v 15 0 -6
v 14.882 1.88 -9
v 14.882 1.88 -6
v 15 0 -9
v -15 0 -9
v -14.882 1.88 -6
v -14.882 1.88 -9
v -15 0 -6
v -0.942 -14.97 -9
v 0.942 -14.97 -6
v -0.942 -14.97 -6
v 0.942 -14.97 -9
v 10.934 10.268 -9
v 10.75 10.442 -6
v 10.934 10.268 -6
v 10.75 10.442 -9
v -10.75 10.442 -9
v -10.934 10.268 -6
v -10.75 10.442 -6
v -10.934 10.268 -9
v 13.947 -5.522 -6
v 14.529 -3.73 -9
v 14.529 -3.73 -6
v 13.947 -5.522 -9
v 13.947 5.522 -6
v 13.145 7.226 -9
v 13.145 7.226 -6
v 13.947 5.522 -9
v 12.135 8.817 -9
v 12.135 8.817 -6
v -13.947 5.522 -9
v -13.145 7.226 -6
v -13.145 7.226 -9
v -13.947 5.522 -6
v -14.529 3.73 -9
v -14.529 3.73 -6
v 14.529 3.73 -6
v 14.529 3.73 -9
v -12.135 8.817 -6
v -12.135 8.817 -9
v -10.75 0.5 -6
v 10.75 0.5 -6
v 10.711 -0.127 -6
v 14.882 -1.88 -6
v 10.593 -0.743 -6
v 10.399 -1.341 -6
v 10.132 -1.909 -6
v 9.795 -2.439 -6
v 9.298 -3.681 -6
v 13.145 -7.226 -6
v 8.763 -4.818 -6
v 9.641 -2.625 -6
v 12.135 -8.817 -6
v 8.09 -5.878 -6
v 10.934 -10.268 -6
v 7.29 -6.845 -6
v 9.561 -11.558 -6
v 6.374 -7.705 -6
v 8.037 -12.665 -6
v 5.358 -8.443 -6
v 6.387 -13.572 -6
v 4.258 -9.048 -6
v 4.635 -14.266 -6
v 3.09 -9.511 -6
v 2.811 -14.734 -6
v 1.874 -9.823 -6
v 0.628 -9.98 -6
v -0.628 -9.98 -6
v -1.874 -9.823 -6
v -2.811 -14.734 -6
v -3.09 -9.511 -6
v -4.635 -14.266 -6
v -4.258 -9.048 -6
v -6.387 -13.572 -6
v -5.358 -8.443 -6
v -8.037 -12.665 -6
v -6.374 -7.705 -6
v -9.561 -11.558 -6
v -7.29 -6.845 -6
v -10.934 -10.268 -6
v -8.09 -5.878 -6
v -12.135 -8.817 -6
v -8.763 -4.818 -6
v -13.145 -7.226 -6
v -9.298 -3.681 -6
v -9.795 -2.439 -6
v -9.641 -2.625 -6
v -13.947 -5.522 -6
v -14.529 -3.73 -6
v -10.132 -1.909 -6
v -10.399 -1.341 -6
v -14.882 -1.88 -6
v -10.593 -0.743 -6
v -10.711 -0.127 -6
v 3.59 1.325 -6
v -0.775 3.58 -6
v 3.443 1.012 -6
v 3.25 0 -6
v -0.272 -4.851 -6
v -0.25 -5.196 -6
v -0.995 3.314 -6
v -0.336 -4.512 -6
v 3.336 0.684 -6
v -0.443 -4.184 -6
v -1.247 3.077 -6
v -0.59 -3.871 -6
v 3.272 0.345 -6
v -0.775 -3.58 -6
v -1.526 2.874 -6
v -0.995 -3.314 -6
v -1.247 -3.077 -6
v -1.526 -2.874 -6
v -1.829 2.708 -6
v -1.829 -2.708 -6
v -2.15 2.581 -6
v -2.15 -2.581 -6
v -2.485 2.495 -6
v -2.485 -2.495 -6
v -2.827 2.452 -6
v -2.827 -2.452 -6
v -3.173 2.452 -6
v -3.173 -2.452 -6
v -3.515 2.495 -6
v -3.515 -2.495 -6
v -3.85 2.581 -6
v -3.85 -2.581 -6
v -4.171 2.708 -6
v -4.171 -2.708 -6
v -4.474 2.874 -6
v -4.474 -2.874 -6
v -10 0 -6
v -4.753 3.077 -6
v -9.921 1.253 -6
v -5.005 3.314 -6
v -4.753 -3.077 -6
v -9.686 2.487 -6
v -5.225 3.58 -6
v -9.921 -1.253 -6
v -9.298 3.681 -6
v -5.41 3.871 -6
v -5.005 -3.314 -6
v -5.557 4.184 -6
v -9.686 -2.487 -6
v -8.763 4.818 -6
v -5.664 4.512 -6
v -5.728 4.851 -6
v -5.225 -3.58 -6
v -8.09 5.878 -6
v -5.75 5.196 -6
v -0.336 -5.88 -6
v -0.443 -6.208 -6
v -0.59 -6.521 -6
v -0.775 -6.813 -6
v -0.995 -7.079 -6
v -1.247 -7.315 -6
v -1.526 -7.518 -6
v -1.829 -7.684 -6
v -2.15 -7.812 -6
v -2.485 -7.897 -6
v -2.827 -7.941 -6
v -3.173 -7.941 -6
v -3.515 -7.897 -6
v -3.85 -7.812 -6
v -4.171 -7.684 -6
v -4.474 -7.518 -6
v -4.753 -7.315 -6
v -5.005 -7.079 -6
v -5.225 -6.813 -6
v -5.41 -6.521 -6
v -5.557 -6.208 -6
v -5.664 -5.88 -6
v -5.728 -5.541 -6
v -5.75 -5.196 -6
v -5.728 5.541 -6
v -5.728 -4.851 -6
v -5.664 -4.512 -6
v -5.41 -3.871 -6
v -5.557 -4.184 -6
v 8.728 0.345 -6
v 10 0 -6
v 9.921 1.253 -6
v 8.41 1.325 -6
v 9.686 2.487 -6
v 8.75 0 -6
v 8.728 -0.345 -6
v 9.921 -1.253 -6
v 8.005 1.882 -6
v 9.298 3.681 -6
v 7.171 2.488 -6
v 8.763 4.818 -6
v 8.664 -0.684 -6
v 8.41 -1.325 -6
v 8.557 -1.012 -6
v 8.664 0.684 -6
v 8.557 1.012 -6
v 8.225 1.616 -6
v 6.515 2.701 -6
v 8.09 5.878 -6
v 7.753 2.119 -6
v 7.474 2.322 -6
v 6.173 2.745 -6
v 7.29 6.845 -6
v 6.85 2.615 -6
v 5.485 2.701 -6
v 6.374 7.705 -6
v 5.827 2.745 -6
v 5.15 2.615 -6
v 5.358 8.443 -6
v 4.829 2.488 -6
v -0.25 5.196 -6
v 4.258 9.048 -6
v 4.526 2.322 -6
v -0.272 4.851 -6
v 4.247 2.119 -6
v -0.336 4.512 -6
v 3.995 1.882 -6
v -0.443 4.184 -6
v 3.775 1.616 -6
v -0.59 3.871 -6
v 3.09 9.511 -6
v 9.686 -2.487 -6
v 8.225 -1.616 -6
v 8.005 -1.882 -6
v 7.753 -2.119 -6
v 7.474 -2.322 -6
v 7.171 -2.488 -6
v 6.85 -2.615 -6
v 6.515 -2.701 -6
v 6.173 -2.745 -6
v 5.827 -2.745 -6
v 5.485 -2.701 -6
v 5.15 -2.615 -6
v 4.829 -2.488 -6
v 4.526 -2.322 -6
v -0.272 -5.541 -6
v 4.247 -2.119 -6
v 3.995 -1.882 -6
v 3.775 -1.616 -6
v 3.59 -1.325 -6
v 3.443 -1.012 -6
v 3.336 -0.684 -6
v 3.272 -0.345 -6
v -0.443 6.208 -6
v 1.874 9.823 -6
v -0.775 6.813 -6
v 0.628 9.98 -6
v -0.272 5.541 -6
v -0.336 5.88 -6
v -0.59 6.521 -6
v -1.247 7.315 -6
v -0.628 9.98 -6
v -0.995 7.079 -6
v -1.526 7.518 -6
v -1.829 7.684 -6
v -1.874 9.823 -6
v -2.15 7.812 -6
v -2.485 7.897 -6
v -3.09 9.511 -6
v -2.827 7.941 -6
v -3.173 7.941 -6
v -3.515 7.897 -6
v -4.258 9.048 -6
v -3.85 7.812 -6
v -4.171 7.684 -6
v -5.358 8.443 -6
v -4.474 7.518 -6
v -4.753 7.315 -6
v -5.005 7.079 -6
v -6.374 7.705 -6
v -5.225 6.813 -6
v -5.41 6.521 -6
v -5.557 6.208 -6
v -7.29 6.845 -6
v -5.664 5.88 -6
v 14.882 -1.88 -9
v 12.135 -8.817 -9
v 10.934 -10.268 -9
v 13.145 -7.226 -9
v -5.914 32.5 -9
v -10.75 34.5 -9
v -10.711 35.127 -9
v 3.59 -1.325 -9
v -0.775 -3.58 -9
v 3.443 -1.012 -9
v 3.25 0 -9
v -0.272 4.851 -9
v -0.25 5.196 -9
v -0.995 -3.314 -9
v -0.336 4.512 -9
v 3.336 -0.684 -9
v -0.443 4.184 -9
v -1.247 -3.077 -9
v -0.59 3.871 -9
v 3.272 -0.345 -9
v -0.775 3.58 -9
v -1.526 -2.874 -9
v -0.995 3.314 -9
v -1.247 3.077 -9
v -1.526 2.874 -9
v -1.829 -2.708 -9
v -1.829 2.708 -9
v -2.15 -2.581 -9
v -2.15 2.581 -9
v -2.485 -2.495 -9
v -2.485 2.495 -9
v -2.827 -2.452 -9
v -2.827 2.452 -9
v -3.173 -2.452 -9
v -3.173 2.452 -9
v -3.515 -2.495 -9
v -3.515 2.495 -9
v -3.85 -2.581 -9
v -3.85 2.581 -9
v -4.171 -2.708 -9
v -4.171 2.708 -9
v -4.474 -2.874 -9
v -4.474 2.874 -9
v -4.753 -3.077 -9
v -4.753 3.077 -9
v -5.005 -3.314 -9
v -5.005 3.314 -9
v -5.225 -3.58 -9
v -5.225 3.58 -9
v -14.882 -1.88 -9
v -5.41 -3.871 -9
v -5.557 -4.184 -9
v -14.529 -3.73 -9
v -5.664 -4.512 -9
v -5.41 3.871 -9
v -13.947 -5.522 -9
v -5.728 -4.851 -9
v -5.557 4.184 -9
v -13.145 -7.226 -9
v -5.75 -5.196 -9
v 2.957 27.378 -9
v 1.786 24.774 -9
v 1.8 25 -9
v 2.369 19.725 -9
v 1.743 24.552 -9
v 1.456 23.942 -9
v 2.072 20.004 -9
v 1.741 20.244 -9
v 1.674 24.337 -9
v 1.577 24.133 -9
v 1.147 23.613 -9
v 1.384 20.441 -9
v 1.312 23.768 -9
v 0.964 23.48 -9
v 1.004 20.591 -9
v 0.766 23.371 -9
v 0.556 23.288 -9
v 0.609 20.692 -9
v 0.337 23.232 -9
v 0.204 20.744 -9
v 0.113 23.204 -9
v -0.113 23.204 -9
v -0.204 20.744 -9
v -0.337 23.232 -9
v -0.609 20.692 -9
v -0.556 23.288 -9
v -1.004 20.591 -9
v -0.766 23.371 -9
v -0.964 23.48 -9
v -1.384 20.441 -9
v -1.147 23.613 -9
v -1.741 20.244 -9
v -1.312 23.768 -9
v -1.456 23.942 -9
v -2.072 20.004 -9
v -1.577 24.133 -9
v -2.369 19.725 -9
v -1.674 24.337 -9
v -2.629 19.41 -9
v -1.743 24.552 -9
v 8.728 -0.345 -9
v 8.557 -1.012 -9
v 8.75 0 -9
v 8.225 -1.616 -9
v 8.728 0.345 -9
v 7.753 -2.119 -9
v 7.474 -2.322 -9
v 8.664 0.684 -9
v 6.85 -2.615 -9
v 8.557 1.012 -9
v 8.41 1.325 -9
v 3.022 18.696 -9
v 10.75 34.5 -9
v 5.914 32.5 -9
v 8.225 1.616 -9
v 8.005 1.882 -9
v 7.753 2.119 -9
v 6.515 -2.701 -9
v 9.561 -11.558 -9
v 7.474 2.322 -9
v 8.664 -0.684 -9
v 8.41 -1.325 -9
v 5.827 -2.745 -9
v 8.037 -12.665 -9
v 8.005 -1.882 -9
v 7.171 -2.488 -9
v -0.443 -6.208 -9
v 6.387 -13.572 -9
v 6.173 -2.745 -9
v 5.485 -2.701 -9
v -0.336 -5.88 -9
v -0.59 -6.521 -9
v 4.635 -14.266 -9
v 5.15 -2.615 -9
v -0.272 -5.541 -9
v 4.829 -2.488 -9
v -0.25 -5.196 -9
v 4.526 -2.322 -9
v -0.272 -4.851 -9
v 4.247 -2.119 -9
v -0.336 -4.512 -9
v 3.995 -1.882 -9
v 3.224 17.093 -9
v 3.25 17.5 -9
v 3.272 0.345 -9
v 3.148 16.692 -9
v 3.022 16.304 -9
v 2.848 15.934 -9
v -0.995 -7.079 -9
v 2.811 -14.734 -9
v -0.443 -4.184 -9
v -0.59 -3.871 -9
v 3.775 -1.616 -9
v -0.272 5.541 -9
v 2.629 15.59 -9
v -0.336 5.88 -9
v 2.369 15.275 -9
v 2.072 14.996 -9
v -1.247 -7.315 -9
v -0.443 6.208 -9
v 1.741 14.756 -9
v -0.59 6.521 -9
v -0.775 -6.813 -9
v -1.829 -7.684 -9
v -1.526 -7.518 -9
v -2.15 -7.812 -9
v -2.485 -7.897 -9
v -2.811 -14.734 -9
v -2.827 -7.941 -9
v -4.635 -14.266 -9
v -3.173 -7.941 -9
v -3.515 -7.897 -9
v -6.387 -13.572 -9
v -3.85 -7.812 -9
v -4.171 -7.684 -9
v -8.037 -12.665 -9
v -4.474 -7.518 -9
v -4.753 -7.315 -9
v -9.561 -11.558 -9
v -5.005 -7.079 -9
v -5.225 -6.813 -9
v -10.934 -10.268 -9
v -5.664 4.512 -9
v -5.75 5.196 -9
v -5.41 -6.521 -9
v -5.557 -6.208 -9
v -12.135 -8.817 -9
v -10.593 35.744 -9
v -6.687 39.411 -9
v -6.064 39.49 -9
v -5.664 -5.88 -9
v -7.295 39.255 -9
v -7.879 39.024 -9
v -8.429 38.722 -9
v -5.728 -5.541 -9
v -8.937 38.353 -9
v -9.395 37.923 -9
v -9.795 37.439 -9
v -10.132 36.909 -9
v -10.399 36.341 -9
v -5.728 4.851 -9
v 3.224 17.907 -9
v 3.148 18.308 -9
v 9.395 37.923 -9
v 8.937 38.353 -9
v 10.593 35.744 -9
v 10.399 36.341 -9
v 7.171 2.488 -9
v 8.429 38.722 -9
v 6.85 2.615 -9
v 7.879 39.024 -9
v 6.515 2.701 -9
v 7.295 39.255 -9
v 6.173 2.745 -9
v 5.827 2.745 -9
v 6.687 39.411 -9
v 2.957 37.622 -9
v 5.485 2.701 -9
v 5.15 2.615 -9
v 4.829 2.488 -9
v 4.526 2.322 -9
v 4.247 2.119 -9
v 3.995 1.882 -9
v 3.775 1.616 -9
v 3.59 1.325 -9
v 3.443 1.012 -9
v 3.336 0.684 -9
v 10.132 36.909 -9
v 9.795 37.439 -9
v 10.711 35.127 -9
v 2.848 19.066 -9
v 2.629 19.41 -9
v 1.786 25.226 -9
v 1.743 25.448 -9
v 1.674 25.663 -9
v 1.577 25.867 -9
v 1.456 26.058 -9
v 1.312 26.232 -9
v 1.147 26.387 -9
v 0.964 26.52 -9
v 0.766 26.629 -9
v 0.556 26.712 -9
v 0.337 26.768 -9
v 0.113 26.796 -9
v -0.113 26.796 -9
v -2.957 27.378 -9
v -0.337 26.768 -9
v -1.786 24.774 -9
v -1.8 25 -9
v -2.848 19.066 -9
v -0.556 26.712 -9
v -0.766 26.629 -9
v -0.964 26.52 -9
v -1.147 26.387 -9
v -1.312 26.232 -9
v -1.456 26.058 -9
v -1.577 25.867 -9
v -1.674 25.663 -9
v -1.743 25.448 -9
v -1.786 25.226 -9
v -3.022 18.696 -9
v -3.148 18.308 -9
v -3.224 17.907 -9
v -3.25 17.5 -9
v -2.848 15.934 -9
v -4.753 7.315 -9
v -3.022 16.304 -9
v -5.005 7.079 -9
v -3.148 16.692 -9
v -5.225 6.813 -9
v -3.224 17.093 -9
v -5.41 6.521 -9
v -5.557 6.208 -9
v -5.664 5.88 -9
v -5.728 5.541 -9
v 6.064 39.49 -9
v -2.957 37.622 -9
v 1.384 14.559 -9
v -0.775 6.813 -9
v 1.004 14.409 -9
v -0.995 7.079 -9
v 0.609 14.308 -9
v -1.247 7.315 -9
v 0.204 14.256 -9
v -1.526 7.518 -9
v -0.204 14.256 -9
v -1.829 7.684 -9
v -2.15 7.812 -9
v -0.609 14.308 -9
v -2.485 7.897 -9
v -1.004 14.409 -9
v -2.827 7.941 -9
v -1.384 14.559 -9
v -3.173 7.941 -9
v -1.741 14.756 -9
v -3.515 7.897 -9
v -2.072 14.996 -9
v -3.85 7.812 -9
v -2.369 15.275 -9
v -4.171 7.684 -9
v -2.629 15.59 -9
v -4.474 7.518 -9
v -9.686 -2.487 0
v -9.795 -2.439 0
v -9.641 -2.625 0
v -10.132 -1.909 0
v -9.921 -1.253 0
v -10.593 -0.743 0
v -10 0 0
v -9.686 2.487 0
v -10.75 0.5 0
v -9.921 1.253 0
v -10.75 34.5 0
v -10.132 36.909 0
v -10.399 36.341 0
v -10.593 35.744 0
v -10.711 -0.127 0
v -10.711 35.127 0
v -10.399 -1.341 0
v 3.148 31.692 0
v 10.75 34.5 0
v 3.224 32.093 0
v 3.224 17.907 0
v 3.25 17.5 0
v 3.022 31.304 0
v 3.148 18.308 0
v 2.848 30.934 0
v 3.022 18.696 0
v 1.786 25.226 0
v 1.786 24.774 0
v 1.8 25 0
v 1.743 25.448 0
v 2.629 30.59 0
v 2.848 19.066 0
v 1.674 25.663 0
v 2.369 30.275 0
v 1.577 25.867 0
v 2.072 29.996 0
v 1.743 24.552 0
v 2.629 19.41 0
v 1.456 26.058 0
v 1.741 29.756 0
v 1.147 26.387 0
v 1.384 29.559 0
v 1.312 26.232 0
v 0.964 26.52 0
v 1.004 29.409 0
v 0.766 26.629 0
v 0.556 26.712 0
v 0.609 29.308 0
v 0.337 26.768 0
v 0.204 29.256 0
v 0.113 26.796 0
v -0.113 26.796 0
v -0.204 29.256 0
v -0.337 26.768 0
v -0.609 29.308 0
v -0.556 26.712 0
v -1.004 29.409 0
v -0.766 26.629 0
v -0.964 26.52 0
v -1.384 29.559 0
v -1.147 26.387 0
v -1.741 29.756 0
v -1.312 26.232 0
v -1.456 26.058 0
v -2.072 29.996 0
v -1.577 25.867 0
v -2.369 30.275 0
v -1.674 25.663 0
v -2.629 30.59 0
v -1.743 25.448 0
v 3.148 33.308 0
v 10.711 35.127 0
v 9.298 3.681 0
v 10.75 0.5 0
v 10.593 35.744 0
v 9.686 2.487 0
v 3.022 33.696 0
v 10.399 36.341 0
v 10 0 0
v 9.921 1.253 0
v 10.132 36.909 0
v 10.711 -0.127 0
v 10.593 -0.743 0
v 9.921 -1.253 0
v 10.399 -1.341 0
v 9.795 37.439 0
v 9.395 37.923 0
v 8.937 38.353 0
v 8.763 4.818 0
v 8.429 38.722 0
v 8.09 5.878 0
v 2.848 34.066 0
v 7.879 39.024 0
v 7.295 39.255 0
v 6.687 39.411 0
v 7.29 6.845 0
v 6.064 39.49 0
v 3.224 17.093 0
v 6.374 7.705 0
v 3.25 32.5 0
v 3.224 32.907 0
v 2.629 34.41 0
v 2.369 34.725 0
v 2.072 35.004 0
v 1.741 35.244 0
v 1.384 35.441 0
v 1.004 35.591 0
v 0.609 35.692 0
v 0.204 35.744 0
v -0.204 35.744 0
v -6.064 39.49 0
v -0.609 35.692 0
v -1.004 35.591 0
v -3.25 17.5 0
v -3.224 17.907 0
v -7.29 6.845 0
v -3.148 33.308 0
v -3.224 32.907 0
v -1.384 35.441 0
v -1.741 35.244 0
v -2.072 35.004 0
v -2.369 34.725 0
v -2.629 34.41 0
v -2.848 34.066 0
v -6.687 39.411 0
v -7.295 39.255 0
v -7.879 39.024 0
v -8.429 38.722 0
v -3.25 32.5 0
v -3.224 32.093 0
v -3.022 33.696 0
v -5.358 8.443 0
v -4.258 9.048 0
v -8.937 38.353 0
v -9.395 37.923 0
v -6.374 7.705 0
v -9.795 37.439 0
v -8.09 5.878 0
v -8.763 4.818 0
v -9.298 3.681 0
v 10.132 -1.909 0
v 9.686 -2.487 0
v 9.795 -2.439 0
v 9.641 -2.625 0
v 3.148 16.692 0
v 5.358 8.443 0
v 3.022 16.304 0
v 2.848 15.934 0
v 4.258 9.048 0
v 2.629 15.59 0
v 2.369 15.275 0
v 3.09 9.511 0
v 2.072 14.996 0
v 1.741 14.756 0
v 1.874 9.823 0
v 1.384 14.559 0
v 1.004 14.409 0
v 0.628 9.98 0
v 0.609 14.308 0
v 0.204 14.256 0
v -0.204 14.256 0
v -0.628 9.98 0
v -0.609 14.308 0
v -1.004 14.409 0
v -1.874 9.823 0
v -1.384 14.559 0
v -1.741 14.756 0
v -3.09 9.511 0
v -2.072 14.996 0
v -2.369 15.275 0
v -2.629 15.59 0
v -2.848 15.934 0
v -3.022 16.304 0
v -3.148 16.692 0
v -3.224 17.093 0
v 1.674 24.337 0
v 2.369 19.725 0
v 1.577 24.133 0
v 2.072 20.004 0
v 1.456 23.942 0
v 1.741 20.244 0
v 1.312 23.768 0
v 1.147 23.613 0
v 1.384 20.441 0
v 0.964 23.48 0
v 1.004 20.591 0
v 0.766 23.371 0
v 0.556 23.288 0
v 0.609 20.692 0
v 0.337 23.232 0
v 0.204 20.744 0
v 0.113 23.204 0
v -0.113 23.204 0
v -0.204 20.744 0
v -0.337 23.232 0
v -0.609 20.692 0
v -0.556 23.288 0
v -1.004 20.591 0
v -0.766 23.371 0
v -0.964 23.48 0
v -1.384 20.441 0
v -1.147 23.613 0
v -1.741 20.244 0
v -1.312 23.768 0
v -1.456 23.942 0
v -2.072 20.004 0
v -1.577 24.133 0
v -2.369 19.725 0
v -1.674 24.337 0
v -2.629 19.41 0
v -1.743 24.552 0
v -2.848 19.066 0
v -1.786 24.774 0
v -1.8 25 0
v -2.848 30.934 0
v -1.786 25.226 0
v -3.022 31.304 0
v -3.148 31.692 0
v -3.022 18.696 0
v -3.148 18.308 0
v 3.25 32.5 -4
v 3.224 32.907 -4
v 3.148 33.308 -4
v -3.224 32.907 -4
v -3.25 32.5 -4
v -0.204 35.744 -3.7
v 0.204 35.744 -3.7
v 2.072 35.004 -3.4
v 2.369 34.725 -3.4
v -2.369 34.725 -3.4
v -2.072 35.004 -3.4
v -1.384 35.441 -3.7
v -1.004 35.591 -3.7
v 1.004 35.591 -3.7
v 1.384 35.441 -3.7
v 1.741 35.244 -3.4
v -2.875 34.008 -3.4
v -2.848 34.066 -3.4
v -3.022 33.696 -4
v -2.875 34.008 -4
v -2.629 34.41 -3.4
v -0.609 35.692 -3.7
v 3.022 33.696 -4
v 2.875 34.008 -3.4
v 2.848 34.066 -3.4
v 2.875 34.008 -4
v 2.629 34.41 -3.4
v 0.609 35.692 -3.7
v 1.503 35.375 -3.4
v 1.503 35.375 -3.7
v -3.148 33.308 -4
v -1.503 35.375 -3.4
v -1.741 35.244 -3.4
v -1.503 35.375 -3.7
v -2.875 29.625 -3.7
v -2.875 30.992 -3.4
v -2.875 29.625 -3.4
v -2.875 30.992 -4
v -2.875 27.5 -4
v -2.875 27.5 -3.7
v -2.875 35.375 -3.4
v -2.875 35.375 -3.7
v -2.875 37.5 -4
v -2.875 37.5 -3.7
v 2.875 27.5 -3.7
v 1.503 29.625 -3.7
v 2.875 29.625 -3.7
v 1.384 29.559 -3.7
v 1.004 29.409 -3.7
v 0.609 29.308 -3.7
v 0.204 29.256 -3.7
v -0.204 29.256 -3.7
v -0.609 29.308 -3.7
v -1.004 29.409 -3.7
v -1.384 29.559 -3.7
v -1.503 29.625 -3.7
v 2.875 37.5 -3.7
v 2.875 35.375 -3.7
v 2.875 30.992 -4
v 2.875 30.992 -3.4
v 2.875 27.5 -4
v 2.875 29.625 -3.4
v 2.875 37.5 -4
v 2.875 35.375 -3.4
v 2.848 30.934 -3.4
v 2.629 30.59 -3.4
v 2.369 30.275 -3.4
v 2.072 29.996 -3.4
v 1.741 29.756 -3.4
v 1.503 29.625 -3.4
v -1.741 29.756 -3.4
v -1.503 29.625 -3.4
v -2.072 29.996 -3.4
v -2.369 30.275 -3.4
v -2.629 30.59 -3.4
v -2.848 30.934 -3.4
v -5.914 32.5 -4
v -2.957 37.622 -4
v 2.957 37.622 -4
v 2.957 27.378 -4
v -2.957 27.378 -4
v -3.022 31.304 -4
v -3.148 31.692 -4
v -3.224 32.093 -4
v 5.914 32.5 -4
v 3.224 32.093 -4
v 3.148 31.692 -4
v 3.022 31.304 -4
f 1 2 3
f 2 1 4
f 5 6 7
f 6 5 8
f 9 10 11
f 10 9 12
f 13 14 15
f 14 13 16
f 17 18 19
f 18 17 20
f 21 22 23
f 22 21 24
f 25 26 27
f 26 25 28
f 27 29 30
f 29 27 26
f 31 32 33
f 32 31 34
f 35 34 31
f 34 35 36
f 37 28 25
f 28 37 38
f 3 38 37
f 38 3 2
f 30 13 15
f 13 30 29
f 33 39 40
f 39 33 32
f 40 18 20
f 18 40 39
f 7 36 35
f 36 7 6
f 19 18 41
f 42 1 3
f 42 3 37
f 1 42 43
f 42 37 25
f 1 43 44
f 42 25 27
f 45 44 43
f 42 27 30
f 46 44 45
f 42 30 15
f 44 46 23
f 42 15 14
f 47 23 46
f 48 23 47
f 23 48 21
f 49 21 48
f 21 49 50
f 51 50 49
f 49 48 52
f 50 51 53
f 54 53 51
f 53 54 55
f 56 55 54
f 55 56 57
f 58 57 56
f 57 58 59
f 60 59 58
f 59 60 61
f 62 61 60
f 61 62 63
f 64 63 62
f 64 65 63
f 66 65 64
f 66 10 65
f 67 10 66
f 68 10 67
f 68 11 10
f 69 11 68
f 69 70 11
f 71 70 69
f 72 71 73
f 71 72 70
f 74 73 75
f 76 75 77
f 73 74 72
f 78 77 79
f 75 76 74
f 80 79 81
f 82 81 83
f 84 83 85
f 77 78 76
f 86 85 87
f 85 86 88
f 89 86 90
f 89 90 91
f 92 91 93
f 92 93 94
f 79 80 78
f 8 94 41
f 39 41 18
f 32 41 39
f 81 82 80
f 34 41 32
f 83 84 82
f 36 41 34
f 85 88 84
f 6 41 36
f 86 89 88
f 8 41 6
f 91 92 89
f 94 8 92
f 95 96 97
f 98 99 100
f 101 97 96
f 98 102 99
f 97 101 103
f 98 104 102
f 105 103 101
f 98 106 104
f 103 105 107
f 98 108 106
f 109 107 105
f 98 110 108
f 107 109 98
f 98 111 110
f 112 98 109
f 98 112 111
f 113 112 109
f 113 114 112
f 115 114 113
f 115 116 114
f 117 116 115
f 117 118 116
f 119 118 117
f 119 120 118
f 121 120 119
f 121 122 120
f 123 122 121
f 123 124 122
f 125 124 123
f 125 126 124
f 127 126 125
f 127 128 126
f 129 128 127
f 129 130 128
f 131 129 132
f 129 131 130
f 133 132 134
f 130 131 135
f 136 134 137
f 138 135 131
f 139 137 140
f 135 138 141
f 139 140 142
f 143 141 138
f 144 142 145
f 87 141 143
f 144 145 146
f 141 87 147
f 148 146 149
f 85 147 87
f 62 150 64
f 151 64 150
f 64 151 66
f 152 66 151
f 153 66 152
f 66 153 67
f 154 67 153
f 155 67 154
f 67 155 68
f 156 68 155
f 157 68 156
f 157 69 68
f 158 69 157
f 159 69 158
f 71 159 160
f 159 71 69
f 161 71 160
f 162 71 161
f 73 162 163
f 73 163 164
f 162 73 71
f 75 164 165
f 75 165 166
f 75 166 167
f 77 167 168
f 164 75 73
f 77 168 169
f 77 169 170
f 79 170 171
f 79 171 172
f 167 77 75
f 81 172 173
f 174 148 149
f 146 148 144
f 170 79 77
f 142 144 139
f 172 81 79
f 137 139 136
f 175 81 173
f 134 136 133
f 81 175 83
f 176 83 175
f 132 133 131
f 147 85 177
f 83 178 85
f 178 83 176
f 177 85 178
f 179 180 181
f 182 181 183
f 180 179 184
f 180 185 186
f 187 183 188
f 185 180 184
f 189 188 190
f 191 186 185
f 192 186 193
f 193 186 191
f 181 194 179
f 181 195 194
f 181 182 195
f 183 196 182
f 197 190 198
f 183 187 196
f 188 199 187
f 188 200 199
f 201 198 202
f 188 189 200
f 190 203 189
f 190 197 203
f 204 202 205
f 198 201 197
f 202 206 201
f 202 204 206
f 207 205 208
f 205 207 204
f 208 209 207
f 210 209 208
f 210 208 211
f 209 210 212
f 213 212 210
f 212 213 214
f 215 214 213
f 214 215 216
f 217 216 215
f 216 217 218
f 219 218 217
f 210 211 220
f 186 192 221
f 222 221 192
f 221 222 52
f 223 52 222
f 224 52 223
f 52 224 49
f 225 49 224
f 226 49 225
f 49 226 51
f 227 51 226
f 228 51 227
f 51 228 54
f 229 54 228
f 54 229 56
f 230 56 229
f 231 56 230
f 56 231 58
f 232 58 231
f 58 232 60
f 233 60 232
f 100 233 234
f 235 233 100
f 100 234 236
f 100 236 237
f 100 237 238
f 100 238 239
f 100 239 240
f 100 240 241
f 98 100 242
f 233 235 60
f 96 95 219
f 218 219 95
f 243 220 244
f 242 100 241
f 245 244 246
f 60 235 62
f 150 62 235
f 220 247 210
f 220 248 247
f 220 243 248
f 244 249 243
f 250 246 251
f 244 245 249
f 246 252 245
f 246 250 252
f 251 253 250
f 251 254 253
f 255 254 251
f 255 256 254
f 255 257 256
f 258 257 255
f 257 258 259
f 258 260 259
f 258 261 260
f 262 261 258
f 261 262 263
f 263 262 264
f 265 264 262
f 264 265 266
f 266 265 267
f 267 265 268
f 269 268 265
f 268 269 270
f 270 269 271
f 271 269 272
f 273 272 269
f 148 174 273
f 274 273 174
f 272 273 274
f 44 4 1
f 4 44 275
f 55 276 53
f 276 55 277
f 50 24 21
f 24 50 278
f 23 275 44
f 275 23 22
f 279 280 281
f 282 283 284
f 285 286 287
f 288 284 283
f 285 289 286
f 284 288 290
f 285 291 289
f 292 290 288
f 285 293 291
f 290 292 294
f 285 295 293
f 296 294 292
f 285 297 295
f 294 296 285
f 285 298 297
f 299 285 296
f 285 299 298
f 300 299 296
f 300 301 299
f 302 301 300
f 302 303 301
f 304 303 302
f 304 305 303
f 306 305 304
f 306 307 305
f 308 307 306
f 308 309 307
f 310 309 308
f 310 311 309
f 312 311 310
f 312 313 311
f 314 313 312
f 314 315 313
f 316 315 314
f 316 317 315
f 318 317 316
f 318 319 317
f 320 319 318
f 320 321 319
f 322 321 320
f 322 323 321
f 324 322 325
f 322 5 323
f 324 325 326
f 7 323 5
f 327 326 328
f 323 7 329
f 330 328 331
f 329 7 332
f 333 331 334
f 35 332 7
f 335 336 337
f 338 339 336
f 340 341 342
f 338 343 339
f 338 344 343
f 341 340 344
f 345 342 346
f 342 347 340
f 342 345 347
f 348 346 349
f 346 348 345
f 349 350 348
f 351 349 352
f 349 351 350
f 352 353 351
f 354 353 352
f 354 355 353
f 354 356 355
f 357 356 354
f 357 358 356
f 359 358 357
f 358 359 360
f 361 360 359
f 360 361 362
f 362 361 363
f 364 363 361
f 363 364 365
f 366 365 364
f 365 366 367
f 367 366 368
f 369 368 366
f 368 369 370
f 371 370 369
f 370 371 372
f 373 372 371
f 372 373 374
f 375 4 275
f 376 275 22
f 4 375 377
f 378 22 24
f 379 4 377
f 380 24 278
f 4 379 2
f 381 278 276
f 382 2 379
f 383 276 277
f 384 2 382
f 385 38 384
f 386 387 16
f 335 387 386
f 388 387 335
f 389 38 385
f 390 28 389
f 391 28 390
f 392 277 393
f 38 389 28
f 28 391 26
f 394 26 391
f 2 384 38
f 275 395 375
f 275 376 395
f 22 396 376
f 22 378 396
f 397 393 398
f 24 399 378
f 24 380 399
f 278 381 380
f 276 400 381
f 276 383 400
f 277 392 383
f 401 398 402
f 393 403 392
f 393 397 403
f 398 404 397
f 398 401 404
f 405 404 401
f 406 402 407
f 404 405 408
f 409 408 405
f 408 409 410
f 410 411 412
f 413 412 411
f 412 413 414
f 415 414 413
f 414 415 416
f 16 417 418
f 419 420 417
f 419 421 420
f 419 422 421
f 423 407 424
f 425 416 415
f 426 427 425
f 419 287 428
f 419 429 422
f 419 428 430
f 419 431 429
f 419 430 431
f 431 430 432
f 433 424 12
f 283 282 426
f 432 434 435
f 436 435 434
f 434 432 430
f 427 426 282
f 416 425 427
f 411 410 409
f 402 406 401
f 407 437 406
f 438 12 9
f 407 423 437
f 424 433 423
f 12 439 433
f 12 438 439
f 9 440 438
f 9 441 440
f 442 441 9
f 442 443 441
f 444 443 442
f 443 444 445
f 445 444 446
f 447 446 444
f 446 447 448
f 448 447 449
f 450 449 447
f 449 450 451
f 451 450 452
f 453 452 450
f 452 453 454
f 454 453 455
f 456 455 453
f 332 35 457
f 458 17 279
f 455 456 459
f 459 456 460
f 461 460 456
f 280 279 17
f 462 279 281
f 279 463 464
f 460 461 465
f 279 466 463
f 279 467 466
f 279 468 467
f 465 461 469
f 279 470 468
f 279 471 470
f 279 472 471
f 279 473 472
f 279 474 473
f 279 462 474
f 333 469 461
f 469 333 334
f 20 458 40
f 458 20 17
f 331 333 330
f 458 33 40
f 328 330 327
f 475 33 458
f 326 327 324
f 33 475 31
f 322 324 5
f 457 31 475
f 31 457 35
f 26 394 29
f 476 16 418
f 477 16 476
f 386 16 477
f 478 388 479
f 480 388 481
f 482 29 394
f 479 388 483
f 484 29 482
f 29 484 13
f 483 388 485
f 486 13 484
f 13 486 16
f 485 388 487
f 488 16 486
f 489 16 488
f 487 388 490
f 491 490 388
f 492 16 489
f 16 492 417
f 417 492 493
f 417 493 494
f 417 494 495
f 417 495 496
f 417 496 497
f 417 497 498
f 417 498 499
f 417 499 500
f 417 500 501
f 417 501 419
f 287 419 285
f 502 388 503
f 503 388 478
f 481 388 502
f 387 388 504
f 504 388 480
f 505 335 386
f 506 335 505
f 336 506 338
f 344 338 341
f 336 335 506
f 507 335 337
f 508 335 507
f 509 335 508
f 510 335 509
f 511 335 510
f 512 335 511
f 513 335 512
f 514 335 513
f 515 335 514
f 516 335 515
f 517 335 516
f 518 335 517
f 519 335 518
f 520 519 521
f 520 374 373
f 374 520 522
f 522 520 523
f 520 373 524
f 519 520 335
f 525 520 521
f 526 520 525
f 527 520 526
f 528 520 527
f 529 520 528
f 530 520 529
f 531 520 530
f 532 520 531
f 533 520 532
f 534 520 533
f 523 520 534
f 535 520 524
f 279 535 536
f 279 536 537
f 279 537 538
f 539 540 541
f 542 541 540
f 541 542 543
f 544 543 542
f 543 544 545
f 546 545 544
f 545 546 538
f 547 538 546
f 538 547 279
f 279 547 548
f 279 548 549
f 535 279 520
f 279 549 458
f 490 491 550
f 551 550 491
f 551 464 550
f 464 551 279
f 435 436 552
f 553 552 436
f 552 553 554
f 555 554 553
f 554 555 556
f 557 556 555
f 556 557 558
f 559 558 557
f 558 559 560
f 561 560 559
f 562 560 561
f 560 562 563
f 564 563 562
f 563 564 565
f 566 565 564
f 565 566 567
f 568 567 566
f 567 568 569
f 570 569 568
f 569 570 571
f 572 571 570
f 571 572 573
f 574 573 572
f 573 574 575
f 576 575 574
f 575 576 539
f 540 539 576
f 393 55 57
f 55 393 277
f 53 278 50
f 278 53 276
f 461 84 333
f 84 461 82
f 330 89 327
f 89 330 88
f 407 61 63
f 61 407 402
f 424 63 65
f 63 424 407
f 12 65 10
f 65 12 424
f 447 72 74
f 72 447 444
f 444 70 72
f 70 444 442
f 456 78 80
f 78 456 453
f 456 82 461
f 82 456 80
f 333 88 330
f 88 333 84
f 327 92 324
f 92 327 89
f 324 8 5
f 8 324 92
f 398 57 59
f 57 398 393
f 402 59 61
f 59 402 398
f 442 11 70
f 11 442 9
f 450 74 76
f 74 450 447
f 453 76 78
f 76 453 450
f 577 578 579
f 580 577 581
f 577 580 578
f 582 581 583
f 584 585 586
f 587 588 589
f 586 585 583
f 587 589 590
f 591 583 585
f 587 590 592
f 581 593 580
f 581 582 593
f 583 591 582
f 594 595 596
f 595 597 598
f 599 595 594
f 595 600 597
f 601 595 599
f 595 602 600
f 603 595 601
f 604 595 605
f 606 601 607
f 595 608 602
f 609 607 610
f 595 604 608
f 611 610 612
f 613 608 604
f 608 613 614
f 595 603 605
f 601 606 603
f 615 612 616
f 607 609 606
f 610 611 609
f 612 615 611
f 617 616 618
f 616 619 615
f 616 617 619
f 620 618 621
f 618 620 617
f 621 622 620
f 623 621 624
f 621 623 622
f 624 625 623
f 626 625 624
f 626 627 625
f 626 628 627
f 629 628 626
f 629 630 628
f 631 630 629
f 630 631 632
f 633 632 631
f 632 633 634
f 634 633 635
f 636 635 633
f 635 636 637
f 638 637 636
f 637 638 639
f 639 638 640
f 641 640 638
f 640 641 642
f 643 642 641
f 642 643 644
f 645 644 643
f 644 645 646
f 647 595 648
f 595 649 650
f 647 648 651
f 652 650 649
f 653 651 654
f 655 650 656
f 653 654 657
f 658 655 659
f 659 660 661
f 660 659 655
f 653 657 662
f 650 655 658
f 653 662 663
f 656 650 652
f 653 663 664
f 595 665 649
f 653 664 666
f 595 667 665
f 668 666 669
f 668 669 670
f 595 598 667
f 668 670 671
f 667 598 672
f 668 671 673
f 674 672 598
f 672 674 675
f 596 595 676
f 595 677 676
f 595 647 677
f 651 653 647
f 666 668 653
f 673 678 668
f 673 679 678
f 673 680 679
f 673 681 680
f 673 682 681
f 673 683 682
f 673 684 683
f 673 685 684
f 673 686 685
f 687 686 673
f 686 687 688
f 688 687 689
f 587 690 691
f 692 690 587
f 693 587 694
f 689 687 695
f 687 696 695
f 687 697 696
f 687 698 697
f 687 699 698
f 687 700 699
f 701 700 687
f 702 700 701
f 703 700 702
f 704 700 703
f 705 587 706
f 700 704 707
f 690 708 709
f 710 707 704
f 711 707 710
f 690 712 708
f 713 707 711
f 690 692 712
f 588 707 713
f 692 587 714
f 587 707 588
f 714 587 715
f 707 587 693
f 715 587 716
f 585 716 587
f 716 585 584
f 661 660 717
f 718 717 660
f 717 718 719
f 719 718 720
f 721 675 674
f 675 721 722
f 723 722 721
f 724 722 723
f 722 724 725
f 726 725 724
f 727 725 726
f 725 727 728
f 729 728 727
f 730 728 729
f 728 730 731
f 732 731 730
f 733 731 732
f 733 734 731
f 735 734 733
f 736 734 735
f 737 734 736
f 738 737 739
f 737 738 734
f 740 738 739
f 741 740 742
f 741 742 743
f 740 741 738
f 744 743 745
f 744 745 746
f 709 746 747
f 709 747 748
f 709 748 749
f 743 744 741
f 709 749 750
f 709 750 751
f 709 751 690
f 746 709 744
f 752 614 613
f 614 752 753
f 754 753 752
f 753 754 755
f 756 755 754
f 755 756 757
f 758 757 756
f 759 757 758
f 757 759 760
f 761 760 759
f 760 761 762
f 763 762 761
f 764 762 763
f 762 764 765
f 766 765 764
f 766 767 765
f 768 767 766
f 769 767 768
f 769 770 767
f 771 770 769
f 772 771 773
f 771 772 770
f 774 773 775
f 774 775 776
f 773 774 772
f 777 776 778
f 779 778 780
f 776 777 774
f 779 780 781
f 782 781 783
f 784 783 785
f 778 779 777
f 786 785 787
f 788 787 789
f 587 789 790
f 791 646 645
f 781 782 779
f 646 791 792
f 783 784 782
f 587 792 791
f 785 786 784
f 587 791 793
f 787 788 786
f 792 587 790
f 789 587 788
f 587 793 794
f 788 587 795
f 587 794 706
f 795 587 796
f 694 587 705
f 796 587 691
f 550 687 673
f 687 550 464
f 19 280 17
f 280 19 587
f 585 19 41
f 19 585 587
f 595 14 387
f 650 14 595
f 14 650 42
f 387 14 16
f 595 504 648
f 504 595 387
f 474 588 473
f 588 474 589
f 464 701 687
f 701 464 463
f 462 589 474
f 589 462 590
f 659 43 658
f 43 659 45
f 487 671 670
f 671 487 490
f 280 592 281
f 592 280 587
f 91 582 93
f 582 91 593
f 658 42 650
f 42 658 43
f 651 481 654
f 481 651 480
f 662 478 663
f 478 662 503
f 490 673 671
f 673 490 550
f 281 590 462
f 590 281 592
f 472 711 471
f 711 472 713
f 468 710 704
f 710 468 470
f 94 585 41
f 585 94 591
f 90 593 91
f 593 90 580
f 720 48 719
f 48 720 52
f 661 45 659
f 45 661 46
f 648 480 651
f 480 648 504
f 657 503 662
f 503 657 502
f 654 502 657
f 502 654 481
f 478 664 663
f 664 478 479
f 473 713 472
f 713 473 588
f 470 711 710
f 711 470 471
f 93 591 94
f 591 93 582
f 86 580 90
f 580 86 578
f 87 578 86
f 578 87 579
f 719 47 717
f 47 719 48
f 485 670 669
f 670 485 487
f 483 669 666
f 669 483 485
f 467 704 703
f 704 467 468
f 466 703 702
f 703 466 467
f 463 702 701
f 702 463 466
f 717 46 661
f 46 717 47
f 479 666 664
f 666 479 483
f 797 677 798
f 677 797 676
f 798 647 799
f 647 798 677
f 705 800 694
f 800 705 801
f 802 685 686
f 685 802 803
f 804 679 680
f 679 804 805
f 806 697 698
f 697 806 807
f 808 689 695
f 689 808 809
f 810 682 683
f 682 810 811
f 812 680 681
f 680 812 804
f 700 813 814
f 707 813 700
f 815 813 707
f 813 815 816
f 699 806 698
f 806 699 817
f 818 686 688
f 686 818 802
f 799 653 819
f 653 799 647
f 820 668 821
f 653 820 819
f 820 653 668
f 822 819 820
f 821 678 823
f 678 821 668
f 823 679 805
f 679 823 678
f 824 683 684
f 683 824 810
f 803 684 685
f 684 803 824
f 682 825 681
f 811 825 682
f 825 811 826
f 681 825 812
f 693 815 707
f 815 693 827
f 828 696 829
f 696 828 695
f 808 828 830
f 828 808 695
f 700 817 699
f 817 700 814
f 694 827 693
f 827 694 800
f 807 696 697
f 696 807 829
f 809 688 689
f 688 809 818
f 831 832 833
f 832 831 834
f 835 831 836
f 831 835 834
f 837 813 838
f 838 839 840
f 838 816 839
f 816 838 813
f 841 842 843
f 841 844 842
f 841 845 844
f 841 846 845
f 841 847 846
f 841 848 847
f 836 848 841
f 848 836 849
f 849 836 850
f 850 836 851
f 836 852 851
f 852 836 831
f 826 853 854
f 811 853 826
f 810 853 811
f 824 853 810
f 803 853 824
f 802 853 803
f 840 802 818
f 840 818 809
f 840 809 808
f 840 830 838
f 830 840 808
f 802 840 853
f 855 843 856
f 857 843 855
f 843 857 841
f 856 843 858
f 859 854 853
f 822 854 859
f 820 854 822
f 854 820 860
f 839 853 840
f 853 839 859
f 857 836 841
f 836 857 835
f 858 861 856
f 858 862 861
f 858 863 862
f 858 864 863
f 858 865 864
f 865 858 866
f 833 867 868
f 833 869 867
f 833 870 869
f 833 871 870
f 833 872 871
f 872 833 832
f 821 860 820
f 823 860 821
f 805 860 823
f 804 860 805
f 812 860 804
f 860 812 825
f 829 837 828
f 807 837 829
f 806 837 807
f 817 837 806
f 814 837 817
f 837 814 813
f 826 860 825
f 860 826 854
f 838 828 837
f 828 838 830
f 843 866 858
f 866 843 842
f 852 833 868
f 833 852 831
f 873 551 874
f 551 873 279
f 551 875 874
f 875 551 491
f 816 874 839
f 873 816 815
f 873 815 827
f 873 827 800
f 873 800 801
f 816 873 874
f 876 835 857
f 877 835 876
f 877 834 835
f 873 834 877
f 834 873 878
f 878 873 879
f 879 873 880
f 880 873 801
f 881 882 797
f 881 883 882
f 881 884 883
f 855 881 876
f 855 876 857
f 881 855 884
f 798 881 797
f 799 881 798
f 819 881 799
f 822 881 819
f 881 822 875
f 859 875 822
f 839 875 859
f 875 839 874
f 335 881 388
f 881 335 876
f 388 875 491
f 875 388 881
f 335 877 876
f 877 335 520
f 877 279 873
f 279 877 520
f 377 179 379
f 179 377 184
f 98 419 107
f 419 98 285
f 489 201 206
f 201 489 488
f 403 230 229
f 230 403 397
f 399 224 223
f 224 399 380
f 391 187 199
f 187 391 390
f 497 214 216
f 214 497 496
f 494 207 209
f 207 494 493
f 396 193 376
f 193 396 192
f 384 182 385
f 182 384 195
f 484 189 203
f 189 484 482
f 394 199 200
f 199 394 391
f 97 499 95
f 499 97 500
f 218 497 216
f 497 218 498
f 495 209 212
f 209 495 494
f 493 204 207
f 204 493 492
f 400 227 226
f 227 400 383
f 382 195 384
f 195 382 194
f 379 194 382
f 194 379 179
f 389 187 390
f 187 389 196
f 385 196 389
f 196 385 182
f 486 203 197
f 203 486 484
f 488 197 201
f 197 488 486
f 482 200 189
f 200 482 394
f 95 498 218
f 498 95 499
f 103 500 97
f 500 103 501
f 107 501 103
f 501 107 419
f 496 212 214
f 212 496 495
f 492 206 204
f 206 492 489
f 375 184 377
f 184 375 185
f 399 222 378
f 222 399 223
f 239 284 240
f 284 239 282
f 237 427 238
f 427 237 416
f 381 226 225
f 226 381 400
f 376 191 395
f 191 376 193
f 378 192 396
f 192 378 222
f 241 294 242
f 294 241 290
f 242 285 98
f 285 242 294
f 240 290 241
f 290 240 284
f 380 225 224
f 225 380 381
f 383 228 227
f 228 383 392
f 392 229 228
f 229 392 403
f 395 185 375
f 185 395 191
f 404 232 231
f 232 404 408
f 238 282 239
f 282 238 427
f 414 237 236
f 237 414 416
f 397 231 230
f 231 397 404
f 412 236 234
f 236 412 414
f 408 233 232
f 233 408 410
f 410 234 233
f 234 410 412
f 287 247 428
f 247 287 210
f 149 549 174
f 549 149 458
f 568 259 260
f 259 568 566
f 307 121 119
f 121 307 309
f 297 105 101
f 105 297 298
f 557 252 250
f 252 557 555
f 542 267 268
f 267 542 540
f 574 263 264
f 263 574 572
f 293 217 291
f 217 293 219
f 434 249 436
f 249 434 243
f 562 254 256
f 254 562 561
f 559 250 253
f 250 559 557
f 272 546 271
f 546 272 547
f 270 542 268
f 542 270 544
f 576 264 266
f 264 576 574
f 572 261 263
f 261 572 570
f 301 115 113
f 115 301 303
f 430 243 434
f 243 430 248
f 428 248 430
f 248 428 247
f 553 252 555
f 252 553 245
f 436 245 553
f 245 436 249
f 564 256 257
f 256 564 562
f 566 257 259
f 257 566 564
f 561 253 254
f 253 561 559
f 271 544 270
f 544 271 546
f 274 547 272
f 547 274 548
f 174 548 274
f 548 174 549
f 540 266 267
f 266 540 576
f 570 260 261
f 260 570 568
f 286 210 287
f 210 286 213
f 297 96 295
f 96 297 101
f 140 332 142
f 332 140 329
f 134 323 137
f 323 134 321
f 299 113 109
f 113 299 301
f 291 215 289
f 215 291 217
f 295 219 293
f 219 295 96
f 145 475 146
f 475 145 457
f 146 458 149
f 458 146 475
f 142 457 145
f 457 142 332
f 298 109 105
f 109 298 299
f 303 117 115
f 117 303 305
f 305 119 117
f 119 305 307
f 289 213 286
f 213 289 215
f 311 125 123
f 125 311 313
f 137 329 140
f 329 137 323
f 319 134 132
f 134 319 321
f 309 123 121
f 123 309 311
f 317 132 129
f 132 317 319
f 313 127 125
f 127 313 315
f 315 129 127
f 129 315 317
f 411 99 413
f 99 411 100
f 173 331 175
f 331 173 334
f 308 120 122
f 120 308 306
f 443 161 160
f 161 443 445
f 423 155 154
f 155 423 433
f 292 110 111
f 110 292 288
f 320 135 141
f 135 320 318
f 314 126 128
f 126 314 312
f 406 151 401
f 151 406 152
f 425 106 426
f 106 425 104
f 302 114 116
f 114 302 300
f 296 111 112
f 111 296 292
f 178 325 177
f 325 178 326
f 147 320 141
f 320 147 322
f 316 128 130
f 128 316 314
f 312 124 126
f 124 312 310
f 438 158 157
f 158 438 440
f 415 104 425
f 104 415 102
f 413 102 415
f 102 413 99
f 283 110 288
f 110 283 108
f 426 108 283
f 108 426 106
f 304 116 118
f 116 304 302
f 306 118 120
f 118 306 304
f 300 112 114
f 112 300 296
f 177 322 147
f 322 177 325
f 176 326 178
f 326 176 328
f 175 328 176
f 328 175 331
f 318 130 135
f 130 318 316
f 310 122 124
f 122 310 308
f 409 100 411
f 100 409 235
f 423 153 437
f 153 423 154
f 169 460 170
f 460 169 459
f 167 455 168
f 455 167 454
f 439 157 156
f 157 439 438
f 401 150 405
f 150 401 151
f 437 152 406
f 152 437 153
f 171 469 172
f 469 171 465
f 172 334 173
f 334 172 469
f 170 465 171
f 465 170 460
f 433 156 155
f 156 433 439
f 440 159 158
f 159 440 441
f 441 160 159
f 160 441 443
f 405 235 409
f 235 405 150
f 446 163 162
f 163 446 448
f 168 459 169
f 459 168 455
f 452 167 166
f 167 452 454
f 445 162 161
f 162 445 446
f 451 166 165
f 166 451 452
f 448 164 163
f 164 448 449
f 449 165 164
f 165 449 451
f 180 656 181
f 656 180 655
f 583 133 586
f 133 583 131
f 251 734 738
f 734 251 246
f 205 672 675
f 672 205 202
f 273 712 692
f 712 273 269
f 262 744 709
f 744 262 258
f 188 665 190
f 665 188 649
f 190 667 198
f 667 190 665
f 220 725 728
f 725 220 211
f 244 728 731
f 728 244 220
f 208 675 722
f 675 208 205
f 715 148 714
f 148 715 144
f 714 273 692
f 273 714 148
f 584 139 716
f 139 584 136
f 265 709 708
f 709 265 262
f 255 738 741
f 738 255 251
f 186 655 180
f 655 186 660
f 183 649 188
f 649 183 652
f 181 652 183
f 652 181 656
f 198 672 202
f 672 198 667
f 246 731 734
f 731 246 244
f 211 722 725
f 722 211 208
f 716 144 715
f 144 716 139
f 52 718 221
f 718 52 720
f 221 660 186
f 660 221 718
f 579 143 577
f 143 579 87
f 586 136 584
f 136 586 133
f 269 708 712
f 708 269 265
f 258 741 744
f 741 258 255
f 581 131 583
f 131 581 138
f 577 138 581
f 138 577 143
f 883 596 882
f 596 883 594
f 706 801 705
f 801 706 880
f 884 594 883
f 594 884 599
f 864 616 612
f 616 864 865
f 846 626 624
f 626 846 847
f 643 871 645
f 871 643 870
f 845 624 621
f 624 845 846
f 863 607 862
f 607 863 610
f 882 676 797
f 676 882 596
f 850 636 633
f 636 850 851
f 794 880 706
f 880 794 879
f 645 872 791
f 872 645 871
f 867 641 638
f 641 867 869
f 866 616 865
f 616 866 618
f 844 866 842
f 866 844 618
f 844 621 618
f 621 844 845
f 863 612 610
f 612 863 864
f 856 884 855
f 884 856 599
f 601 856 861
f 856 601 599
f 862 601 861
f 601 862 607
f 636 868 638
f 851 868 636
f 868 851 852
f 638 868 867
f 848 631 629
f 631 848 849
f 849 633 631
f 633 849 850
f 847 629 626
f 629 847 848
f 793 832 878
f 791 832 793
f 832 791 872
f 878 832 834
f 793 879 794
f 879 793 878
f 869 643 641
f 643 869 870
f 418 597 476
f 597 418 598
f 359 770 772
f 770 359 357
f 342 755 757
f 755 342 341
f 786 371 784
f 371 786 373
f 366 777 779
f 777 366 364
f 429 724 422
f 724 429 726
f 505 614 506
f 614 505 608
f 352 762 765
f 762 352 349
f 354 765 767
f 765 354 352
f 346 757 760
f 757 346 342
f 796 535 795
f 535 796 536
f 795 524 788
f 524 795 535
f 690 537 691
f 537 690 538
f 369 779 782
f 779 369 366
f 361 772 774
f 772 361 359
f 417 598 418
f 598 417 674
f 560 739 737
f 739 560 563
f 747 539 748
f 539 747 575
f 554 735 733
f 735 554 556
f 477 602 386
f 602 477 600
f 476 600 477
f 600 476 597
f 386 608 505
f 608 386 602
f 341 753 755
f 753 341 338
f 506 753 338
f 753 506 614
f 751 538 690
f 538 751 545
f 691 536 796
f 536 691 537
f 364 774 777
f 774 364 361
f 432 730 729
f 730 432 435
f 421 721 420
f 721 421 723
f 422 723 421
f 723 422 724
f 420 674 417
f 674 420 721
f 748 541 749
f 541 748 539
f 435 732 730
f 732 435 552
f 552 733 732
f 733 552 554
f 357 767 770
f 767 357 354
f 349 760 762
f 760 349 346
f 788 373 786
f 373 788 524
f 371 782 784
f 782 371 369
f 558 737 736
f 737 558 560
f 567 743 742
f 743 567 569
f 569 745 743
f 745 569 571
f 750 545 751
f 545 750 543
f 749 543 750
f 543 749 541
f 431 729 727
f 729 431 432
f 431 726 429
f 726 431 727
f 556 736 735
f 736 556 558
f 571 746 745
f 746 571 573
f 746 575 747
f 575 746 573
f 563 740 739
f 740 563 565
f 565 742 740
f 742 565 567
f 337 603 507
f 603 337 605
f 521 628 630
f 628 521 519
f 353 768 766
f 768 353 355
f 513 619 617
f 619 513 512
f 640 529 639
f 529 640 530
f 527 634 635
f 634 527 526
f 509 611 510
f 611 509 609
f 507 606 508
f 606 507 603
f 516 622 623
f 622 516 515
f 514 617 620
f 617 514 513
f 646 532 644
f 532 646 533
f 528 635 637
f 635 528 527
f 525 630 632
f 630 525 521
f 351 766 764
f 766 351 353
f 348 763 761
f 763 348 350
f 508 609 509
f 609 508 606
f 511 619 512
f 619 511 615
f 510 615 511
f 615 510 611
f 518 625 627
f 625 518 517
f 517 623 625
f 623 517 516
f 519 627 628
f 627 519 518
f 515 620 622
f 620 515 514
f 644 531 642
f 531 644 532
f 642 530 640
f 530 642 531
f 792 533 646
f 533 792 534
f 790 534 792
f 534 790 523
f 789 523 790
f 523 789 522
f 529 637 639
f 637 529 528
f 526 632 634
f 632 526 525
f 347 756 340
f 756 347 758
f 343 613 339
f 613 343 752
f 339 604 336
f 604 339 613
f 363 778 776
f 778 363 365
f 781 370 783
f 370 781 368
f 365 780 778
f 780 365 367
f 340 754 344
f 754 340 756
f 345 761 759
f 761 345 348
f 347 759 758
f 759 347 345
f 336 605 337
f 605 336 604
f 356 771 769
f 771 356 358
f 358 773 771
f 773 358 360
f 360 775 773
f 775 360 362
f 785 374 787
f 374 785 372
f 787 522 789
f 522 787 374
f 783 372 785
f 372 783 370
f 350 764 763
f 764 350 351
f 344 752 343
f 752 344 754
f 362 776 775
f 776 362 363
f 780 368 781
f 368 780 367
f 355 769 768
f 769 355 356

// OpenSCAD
$fn = 50;


difference() {
	union() {
		translate(v = [0, 0, -9.0000000000]) {
			cylinder(h = 3, r = 15.0000000000);
		}
		translate(v = [0, 17.5000000000, -9]) {
			hull() {
				translate(v = [-2.0000000000, 17.0000000000, 0]) {
					cylinder(h = 9, r = 5);
				}
				translate(v = [2.0000000000, 17.0000000000, 0]) {
					cylinder(h = 9, r = 5);
				}
				translate(v = [-2.0000000000, -17.0000000000, 0]) {
					cylinder(h = 9, r = 5);
				}
				translate(v = [2.0000000000, -17.0000000000, 0]) {
					cylinder(h = 9, r = 5);
				}
			}
		}
		translate(v = [0, 17.5000000000, -9]) {
			hull() {
				translate(v = [-5.7500000000, 17.0000000000, 0]) {
					cylinder(h = 9, r = 5);
				}
				translate(v = [5.7500000000, 17.0000000000, 0]) {
					cylinder(h = 9, r = 5);
				}
				translate(v = [-5.7500000000, -17.0000000000, 0]) {
					cylinder(h = 9, r = 5);
				}
				translate(v = [5.7500000000, -17.0000000000, 0]) {
					cylinder(h = 9, r = 5);
				}
			}
		}
	}
	union() {
		translate(v = [0, 32.5000000000, 0]) {
			rotate(a = [0, 0, 0]) {
				difference() {
					union() {
						translate(v = [0, 0, -50.0000000000]) {
							cylinder(h = 100, r = 3.2500000000);
						}
					}
					union();
				}
			}
		}
		translate(v = [0, 32.5000000000, -9]) {
			rotate(a = [0, 0, 0]) {
				difference() {
					union() {
						translate(v = [-2.8750000000, -5.0000000000, -0.3000000000]) {
							cube(size = [5.7500000000, 10, 0.3000000000]);
						}
						translate(v = [-2.8750000000, -2.8750000000, -0.6000000000]) {
							cube(size = [5.7500000000, 5.7500000000, 0.3000000000]);
						}
						translate(v = [-2.8750000000, -5.0000000000, 5]) {
							cube(size = [5.7500000000, 10, 0.3000000000]);
						}
						translate(v = [-2.8750000000, -2.8750000000, 5.3000000000]) {
							cube(size = [5.7500000000, 5.7500000000, 0.3000000000]);
						}
						linear_extrude(height = 5) {
							polygon(points = [[5.9142500000, 0.0000000000], [2.9571250000, 5.1218907443], [-2.9571250000, 5.1218907443], [-5.9142500000, 0.0000000000], [-2.9571250000, -5.1218907443], [2.9571250000, -5.1218907443]]);
						}
						translate(v = [-2.8750000000, -5.0000000000, -0.3000000000]) {
							cube(size = [5.7500000000, 10, 0.3000000000]);
						}
						translate(v = [-2.8750000000, -2.8750000000, -0.6000000000]) {
							cube(size = [5.7500000000, 5.7500000000, 0.3000000000]);
						}
						translate(v = [-2.8750000000, -5.0000000000, 5]) {
							cube(size = [5.7500000000, 10, 0.3000000000]);
						}
						translate(v = [-2.8750000000, -2.8750000000, 5.3000000000]) {
							cube(size = [5.7500000000, 5.7500000000, 0.3000000000]);
						}
						translate(v = [-2.8750000000, -5.0000000000, -0.3000000000]) {
							cube(size = [5.7500000000, 10, 0.3000000000]);
						}
						translate(v = [-2.8750000000, -2.8750000000, -0.6000000000]) {
							cube(size = [5.7500000000, 5.7500000000, 0.3000000000]);
						}
						translate(v = [-2.8750000000, -5.0000000000, 5]) {
							cube(size = [5.7500000000, 10, 0.3000000000]);
						}
						translate(v = [-2.8750000000, -2.8750000000, 5.3000000000]) {
							cube(size = [5.7500000000, 5.7500000000, 0.3000000000]);
						}
					}
					union();
				}
			}
		}
		translate(v = [6.0000000000, 0.0000000000, 41]) {
			rotate(a = [0, 0, 0]) {
				difference() {
					union() {
						translate(v = [0, 0, -59.0000000000]) {
							cylinder(h = 59, r = 2.2500000000);
						}
						translate(v = [0, 0, -4.2000000000]) {
							cylinder(h = 4.2000000000, r1 = 2.7500000000, r2 = 5.5000000000);
						}
						translate(v = [0, 0, -59.0000000000]) {
							cylinder(h = 59, r = 2.7500000000);
						}
						translate(v = [0, 0, -59.0000000000]) {
							cylinder(h = 59, r = 2.2500000000);
						}
					}
					union();
				}
			}
		}
		translate(v = [-3.0000000000, 5.1961524227, 41]) {
			rotate(a = [0, 0, 0]) {
				difference() {
					union() {
						translate(v = [0, 0, -59.0000000000]) {
							cylinder(h = 59, r = 2.2500000000);
						}
						translate(v = [0, 0, -4.2000000000]) {
							cylinder(h = 4.2000000000, r1 = 2.7500000000, r2 = 5.5000000000);
						}
						translate(v = [0, 0, -59.0000000000]) {
							cylinder(h = 59, r = 2.7500000000);
						}
						translate(v = [0, 0, -59.0000000000]) {
							cylinder(h = 59, r = 2.2500000000);
						}
					}
					union();
				}
			}
		}
		translate(v = [-3.0000000000, -5.1961524227, 41]) {
			rotate(a = [0, 0, 0]) {
				difference() {
					union() {
						translate(v = [0, 0, -59.0000000000]) {
							cylinder(h = 59, r = 2.2500000000);
						}
						translate(v = [0, 0, -4.2000000000]) {
							cylinder(h = 4.2000000000, r1 = 2.7500000000, r2 = 5.5000000000);
						}
						translate(v = [0, 0, -59.0000000000]) {
							cylinder(h = 59, r = 2.7500000000);
						}
						translate(v = [0, 0, -59.0000000000]) {
							cylinder(h = 59, r = 2.2500000000);
						}
					}
					union();
				}
			}
		}
		translate(v = [0, 0, -6.0000000000]) {
			cylinder(h = 100, r = 10.0000000000);
		}
		translate(v = [0.0000000000, 32.5000000000, -100.0000000000]) {
			cylinder(h = 200, r = 3.2500000000);
		}
		translate(v = [0.0000000000, 17.5000000000, -100.0000000000]) {
			cylinder(h = 200, r = 3.2500000000);
		}
		translate(v = [0.0000000000, 25.0000000000, -100.0000000000]) {
			cylinder(h = 200, r = 1.8000000000);
		}
	}
}
